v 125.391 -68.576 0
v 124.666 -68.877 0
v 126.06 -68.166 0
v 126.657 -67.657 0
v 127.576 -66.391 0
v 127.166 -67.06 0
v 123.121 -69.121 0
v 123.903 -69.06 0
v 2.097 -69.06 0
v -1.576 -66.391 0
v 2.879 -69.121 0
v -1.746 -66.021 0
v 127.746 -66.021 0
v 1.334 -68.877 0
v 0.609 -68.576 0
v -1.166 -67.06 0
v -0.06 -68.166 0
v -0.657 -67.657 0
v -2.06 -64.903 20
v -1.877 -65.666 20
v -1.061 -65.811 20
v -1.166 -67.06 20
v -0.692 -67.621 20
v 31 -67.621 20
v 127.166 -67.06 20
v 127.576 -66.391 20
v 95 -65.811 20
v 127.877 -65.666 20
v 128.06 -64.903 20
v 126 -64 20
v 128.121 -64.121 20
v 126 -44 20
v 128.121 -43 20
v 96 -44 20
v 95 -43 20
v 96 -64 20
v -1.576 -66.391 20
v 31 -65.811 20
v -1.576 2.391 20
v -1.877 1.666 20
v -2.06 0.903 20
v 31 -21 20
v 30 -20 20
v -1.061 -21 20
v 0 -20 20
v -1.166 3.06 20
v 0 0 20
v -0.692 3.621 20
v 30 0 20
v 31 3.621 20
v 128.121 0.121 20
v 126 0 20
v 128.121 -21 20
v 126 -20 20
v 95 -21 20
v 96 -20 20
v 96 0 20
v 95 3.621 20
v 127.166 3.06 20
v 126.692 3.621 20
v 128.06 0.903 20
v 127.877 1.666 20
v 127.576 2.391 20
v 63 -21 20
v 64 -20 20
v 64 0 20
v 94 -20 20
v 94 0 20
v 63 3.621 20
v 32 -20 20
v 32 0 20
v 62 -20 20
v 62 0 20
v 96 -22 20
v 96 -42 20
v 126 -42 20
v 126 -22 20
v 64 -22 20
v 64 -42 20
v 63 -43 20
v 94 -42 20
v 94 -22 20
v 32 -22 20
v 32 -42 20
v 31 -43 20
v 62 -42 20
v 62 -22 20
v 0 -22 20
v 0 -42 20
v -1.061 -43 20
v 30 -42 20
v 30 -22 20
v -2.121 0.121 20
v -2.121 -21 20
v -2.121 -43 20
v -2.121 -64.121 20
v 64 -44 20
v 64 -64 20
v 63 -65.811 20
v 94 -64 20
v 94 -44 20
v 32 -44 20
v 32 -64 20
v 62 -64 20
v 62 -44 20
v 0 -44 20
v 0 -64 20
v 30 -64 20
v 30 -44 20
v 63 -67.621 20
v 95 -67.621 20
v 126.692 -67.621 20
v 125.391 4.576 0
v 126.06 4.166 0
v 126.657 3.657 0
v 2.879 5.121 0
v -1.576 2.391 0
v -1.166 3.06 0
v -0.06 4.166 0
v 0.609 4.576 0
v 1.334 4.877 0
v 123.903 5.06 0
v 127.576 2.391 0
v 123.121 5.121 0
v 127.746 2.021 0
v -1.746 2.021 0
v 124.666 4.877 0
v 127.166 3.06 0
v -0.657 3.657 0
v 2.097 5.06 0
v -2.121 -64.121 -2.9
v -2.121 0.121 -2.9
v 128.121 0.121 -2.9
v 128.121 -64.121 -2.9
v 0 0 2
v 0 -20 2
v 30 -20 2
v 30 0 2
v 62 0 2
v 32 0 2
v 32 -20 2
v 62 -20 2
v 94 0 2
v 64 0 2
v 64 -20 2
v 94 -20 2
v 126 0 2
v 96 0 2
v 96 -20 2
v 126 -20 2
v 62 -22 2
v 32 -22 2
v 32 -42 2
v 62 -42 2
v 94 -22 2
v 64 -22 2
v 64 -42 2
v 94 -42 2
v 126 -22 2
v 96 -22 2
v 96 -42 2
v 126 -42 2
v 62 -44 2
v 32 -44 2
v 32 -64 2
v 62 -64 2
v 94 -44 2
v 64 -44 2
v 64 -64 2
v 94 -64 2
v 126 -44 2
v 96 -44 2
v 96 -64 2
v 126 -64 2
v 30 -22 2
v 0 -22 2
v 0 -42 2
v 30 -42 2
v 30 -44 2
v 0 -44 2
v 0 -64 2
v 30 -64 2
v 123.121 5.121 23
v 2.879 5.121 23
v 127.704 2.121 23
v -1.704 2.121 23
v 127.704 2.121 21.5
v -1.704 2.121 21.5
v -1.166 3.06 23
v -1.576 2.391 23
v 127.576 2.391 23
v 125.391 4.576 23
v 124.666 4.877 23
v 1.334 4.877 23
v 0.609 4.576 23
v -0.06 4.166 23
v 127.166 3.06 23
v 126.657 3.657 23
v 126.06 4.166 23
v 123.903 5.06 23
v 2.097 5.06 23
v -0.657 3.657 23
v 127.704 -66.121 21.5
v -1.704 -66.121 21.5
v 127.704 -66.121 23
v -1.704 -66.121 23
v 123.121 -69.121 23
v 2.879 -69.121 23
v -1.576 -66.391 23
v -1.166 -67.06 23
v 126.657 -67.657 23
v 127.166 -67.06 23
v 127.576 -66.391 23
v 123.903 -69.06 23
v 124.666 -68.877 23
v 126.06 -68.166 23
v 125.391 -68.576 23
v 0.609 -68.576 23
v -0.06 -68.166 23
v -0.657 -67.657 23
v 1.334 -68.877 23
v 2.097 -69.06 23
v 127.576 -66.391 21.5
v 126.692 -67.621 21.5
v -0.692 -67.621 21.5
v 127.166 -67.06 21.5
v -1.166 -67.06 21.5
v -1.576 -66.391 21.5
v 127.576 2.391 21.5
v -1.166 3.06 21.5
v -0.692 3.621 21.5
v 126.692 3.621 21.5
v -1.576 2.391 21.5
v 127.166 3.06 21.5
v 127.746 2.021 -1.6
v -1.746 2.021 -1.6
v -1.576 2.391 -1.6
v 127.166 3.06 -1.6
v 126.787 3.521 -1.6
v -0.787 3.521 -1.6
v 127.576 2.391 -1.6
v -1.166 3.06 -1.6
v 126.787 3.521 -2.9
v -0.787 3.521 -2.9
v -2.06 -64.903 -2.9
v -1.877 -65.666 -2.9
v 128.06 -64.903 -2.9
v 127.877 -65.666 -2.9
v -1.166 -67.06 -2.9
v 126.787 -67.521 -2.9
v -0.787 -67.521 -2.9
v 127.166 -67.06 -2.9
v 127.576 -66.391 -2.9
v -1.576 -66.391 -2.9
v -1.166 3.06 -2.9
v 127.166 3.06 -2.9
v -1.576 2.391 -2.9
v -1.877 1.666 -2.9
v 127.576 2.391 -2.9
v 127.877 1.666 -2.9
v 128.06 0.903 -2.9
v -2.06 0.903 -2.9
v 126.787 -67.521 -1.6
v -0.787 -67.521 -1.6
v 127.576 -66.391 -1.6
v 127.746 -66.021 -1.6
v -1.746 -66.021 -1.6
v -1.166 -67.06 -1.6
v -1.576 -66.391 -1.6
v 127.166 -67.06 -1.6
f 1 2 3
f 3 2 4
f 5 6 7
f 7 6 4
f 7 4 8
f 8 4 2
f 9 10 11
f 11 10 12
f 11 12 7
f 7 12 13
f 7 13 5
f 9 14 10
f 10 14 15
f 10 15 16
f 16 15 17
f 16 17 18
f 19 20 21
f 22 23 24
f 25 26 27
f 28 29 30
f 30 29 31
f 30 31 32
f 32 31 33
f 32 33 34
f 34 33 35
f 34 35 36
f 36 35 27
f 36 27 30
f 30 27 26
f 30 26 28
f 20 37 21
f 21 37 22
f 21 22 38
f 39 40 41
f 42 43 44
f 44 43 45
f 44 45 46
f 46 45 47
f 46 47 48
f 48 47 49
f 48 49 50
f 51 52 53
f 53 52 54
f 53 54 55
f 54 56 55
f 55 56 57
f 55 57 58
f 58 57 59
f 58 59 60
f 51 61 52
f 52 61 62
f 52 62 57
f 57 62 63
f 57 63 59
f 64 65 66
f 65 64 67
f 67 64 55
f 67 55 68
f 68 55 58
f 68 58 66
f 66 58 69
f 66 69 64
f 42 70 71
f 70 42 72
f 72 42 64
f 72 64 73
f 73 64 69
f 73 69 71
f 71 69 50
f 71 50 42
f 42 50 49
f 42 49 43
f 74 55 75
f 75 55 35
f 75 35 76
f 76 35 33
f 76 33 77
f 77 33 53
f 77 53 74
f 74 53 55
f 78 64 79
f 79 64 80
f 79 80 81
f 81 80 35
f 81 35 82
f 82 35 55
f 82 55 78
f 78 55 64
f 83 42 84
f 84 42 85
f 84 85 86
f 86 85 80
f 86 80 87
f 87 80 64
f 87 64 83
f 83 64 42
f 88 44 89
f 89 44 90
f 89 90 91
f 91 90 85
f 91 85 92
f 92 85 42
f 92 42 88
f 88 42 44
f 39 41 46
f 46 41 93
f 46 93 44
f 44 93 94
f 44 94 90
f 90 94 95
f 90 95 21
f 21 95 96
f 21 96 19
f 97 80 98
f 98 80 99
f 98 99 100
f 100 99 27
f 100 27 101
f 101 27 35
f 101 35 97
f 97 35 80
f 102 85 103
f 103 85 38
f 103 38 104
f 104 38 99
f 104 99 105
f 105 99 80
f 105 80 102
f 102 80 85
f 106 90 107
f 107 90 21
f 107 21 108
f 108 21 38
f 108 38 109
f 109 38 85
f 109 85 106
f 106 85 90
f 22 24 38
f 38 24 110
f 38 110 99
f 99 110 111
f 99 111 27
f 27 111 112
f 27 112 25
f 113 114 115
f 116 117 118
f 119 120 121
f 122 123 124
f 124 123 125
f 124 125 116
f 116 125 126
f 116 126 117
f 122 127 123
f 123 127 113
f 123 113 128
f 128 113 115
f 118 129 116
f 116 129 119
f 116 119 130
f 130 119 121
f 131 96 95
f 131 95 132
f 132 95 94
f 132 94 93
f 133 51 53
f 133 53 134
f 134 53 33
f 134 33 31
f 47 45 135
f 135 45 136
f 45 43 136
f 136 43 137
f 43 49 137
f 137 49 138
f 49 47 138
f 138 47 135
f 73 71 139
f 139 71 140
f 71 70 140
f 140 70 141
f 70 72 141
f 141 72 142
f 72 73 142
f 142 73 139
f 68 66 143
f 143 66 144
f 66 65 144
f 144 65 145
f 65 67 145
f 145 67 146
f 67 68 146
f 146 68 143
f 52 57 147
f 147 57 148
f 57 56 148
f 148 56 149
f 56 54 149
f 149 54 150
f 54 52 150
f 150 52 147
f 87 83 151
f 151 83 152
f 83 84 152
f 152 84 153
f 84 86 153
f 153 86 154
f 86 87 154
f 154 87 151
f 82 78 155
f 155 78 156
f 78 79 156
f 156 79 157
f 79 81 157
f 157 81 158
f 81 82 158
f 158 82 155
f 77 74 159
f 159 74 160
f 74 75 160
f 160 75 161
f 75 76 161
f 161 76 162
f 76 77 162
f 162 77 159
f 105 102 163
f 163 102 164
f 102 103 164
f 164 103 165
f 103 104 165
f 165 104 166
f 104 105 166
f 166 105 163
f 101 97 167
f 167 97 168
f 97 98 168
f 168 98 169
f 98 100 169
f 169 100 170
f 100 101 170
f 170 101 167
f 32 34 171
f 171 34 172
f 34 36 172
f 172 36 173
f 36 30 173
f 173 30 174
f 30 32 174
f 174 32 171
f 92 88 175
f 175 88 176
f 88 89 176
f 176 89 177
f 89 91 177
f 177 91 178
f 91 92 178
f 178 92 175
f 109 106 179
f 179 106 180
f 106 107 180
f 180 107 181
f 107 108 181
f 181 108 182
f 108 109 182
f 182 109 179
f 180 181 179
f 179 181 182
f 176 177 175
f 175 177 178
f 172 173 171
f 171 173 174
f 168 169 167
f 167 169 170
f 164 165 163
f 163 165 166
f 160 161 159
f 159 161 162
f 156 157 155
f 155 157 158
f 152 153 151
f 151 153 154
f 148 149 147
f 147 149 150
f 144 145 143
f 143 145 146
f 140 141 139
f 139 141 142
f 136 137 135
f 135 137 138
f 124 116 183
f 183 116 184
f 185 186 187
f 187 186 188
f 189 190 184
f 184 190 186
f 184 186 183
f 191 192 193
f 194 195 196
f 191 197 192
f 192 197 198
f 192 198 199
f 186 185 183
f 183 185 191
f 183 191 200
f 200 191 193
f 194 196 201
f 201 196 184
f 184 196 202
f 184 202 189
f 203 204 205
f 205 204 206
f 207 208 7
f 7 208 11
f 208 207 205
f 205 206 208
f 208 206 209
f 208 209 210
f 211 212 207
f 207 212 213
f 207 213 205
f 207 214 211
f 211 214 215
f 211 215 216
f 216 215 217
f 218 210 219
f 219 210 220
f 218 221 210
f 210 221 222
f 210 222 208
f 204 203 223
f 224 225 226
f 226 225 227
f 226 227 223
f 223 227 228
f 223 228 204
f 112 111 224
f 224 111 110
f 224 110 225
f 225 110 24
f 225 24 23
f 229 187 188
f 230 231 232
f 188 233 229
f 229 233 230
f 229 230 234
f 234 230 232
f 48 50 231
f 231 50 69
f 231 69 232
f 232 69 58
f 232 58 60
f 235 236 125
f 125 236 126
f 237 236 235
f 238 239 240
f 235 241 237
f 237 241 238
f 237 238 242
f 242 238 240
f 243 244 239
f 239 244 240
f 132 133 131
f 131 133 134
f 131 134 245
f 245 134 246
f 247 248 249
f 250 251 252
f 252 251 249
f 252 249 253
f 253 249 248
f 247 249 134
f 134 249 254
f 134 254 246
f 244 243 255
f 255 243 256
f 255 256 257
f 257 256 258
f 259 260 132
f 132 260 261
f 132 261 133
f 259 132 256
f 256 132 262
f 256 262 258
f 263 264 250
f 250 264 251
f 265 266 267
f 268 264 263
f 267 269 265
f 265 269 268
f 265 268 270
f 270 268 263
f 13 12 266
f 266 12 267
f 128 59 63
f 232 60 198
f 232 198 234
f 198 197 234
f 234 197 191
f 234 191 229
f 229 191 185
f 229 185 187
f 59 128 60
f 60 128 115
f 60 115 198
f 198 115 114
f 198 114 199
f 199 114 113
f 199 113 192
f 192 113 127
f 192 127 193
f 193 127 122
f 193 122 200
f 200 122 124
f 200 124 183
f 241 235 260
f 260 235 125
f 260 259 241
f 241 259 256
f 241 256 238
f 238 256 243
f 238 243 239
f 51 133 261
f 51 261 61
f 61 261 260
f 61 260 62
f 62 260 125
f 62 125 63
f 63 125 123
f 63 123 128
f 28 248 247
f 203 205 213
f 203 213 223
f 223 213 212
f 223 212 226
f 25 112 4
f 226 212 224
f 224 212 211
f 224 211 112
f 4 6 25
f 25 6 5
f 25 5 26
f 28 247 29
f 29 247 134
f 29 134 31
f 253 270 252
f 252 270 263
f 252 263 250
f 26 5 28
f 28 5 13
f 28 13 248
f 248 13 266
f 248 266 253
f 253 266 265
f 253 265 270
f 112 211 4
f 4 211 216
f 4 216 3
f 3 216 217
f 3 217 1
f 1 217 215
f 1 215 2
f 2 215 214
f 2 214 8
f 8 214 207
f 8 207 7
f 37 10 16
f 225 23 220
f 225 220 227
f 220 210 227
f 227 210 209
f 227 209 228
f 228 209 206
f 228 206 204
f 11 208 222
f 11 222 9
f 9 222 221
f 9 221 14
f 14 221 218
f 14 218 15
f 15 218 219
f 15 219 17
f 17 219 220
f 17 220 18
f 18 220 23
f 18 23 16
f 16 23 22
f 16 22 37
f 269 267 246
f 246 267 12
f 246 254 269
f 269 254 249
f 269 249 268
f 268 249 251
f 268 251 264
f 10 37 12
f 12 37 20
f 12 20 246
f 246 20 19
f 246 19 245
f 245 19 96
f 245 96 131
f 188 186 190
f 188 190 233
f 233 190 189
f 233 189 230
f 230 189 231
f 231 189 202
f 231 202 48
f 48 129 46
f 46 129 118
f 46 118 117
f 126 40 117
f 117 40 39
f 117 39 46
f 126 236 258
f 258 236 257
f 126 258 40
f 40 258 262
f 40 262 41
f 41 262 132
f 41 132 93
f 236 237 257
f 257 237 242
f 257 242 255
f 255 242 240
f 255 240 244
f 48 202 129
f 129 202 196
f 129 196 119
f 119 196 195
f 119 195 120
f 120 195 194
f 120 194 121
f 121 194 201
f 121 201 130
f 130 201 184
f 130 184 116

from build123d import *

# Parameters (mm, degrees)
CROQUIS1_W           = 130.242640688
CROQUIS1_H           = 68.242640688
CROQUIS1_W_2         = 30
CROQUIS1_H_2         = 20
CELDAS_DEPTH         = 20
BASE_START           = -128.12132
CROQUIS2_W           = 2
CROQUIS2_H           = 68.242640688
BASE_DEPTH           = 126
EXCEDENTE_DEPTH      = 3
EXCEDENTE_DEPTH_BACK = 20
CROQUIS3_W           = 130.242640688
CROQUIS3_H           = 3
CROQUIS4_W           = 1.5
CROQUIS4_H           = 71.242640688
RANURA_DEPTH         = 150.231036917
PESTA_A_DEPTH        = 130.242641
F_3D_FIX_DEPTH       = 150.23103719
REDONDEO_R           = 5


with BuildPart() as part:
    # Croquis1 → Celdas (new body)
    with BuildSketch(Plane.XY):
        with Locations((63, -32)):
            Rectangle(CROQUIS1_W, CROQUIS1_H)
        with Locations((47, -10)):
            Rectangle(CROQUIS1_W_2, CROQUIS1_H_2, mode=Mode.SUBTRACT)
        with Locations((15, -10)):
            Rectangle(CROQUIS1_W_2, CROQUIS1_H_2, mode=Mode.SUBTRACT)
        with Locations((79, -10)):
            Rectangle(CROQUIS1_W_2, CROQUIS1_H_2, mode=Mode.SUBTRACT)
        with Locations((111, -10)):
            Rectangle(CROQUIS1_W_2, CROQUIS1_H_2, mode=Mode.SUBTRACT)
        with Locations((47, -32)):
            Rectangle(CROQUIS1_W_2, CROQUIS1_H_2, mode=Mode.SUBTRACT)
        with Locations((79, -32)):
            Rectangle(CROQUIS1_W_2, CROQUIS1_H_2, mode=Mode.SUBTRACT)
        with Locations((111, -32)):
            Rectangle(CROQUIS1_W_2, CROQUIS1_H_2, mode=Mode.SUBTRACT)
        with Locations((47, -54)):
            Rectangle(CROQUIS1_W_2, CROQUIS1_H_2, mode=Mode.SUBTRACT)
        with Locations((79, -54)):
            Rectangle(CROQUIS1_W_2, CROQUIS1_H_2, mode=Mode.SUBTRACT)
        with Locations((111, -54)):
            Rectangle(CROQUIS1_W_2, CROQUIS1_H_2, mode=Mode.SUBTRACT)
        with Locations((15, -32)):
            Rectangle(CROQUIS1_W_2, CROQUIS1_H_2, mode=Mode.SUBTRACT)
        with Locations((15, -54)):
            Rectangle(CROQUIS1_W_2, CROQUIS1_H_2, mode=Mode.SUBTRACT)
    extrude(amount=CELDAS_DEPTH)


with BuildPart() as base_tool:
    # Croquis2 → Base (new body)
    with BuildSketch(Plane(origin=(128.121320344, 0, 0), x_dir=(0, 0, -1), z_dir=(1, 0, 0)).offset(BASE_START)):
        with Locations((-1, -32)):
            Rectangle(CROQUIS2_W, CROQUIS2_H)
    extrude(amount=BASE_DEPTH)


with BuildPart() as part_1:
    add(part.part)


with BuildPart() as part_2:
    # Base: joined with base_tool
    add(part_1.part.fuse(base_tool.part, tol=0.00001))

    # Croquis3 → Excedente (add, two sides: drawn at the far end of the back side and taken through both)
    with BuildSketch(Plane.XY.offset(20).offset(-EXCEDENTE_DEPTH_BACK)):
        with Locations((63, -67.621320344)):
            Rectangle(CROQUIS3_W, CROQUIS3_H)
        with Locations((63, 3.621320344)):
            Rectangle(CROQUIS3_W, CROQUIS3_H)
    extrude(amount=EXCEDENTE_DEPTH + EXCEDENTE_DEPTH_BACK)

    # Croquis4 → Ranura (cut, through all)
    with BuildSketch(Plane.ZY.offset(2.121320344)):
        with Locations((20.75, -32)):
            Rectangle(CROQUIS4_W, CROQUIS4_H)
    extrude(amount=-RANURA_DEPTH, mode=Mode.SUBTRACT)

    # Croquis6 → Pestaña (add, through all)
    with BuildSketch(Plane.ZY.offset(2.121320344)):
        Polygon((0, 2.121320344), (0, -66.121320344), (-1.5, -66.121320344), (-1.5, -67.621320344), (-3, -67.621320344), (-3, 3.621320344), (-1.5, 3.621320344), (-1.5, 2.121320344), align=None)
    extrude(amount=-PESTA_A_DEPTH)

    # Croquis7 → 3D-Fix (cut, through all)
    with BuildSketch(Plane.ZY.offset(2.121320344)):
        Polygon((-0.1, 2.021320344), (-1.6, 2.021320344), (-1.6, 3.521320344), (-2.9, 3.521320344), (-2.9, -67.521320344), (-1.6, -67.521320344), (-1.6, -66.021320344), (-0.1, -66.021320344), (0, -66.021320344), (0, -66.121320344), (-1.5, -66.121320344), (-1.5, -67.621320344), (-3, -67.621320344), (-3, 3.621320344), (-1.5, 3.621320344), (-1.5, 2.121320344), (0, 2.121320344), (0, 2.021320344), align=None)
    extrude(amount=-F_3D_FIX_DEPTH, mode=Mode.SUBTRACT)

    # Redondeo
    # the kernel refuses this fillet: 5 mm, written as the material it takes off along each edge
    with BuildSketch(Plane(origin=(128.121320344, 5.121320344, -12.5), x_dir=(0, -1, 0), z_dir=(0, 0, 1)), Plane(origin=(128.121320344, -69.121320344, 35.5), x_dir=(0, 1, 0), z_dir=(0, 0, -1)), Plane(origin=(-2.121320344, -69.121320344, -12.5), x_dir=(0, 1, 0), z_dir=(0, 0, 1))) as redondeo_piece_1:
        with BuildLine():
            CenterArc((REDONDEO_R, -REDONDEO_R), REDONDEO_R, 90, 90)
            Line((0, -REDONDEO_R), (0, 0))
            Line((0, 0), (REDONDEO_R, 0))
        make_face()
    extrude(amount=48, mode=Mode.SUBTRACT)
    with BuildSketch(Plane(origin=(-2.121320344, 5.121320344, 35.5), x_dir=(1, 0, 0), z_dir=(0, 0, -1))) as redondeo_piece_2:
        with BuildLine():
            CenterArc((REDONDEO_R, REDONDEO_R), REDONDEO_R, 180, 90)
            Line((0, REDONDEO_R), (0, 0))
            Line((0, 0), (REDONDEO_R, 0))
        make_face()
    extrude(amount=48, mode=Mode.SUBTRACT)


solid = part_2.part
